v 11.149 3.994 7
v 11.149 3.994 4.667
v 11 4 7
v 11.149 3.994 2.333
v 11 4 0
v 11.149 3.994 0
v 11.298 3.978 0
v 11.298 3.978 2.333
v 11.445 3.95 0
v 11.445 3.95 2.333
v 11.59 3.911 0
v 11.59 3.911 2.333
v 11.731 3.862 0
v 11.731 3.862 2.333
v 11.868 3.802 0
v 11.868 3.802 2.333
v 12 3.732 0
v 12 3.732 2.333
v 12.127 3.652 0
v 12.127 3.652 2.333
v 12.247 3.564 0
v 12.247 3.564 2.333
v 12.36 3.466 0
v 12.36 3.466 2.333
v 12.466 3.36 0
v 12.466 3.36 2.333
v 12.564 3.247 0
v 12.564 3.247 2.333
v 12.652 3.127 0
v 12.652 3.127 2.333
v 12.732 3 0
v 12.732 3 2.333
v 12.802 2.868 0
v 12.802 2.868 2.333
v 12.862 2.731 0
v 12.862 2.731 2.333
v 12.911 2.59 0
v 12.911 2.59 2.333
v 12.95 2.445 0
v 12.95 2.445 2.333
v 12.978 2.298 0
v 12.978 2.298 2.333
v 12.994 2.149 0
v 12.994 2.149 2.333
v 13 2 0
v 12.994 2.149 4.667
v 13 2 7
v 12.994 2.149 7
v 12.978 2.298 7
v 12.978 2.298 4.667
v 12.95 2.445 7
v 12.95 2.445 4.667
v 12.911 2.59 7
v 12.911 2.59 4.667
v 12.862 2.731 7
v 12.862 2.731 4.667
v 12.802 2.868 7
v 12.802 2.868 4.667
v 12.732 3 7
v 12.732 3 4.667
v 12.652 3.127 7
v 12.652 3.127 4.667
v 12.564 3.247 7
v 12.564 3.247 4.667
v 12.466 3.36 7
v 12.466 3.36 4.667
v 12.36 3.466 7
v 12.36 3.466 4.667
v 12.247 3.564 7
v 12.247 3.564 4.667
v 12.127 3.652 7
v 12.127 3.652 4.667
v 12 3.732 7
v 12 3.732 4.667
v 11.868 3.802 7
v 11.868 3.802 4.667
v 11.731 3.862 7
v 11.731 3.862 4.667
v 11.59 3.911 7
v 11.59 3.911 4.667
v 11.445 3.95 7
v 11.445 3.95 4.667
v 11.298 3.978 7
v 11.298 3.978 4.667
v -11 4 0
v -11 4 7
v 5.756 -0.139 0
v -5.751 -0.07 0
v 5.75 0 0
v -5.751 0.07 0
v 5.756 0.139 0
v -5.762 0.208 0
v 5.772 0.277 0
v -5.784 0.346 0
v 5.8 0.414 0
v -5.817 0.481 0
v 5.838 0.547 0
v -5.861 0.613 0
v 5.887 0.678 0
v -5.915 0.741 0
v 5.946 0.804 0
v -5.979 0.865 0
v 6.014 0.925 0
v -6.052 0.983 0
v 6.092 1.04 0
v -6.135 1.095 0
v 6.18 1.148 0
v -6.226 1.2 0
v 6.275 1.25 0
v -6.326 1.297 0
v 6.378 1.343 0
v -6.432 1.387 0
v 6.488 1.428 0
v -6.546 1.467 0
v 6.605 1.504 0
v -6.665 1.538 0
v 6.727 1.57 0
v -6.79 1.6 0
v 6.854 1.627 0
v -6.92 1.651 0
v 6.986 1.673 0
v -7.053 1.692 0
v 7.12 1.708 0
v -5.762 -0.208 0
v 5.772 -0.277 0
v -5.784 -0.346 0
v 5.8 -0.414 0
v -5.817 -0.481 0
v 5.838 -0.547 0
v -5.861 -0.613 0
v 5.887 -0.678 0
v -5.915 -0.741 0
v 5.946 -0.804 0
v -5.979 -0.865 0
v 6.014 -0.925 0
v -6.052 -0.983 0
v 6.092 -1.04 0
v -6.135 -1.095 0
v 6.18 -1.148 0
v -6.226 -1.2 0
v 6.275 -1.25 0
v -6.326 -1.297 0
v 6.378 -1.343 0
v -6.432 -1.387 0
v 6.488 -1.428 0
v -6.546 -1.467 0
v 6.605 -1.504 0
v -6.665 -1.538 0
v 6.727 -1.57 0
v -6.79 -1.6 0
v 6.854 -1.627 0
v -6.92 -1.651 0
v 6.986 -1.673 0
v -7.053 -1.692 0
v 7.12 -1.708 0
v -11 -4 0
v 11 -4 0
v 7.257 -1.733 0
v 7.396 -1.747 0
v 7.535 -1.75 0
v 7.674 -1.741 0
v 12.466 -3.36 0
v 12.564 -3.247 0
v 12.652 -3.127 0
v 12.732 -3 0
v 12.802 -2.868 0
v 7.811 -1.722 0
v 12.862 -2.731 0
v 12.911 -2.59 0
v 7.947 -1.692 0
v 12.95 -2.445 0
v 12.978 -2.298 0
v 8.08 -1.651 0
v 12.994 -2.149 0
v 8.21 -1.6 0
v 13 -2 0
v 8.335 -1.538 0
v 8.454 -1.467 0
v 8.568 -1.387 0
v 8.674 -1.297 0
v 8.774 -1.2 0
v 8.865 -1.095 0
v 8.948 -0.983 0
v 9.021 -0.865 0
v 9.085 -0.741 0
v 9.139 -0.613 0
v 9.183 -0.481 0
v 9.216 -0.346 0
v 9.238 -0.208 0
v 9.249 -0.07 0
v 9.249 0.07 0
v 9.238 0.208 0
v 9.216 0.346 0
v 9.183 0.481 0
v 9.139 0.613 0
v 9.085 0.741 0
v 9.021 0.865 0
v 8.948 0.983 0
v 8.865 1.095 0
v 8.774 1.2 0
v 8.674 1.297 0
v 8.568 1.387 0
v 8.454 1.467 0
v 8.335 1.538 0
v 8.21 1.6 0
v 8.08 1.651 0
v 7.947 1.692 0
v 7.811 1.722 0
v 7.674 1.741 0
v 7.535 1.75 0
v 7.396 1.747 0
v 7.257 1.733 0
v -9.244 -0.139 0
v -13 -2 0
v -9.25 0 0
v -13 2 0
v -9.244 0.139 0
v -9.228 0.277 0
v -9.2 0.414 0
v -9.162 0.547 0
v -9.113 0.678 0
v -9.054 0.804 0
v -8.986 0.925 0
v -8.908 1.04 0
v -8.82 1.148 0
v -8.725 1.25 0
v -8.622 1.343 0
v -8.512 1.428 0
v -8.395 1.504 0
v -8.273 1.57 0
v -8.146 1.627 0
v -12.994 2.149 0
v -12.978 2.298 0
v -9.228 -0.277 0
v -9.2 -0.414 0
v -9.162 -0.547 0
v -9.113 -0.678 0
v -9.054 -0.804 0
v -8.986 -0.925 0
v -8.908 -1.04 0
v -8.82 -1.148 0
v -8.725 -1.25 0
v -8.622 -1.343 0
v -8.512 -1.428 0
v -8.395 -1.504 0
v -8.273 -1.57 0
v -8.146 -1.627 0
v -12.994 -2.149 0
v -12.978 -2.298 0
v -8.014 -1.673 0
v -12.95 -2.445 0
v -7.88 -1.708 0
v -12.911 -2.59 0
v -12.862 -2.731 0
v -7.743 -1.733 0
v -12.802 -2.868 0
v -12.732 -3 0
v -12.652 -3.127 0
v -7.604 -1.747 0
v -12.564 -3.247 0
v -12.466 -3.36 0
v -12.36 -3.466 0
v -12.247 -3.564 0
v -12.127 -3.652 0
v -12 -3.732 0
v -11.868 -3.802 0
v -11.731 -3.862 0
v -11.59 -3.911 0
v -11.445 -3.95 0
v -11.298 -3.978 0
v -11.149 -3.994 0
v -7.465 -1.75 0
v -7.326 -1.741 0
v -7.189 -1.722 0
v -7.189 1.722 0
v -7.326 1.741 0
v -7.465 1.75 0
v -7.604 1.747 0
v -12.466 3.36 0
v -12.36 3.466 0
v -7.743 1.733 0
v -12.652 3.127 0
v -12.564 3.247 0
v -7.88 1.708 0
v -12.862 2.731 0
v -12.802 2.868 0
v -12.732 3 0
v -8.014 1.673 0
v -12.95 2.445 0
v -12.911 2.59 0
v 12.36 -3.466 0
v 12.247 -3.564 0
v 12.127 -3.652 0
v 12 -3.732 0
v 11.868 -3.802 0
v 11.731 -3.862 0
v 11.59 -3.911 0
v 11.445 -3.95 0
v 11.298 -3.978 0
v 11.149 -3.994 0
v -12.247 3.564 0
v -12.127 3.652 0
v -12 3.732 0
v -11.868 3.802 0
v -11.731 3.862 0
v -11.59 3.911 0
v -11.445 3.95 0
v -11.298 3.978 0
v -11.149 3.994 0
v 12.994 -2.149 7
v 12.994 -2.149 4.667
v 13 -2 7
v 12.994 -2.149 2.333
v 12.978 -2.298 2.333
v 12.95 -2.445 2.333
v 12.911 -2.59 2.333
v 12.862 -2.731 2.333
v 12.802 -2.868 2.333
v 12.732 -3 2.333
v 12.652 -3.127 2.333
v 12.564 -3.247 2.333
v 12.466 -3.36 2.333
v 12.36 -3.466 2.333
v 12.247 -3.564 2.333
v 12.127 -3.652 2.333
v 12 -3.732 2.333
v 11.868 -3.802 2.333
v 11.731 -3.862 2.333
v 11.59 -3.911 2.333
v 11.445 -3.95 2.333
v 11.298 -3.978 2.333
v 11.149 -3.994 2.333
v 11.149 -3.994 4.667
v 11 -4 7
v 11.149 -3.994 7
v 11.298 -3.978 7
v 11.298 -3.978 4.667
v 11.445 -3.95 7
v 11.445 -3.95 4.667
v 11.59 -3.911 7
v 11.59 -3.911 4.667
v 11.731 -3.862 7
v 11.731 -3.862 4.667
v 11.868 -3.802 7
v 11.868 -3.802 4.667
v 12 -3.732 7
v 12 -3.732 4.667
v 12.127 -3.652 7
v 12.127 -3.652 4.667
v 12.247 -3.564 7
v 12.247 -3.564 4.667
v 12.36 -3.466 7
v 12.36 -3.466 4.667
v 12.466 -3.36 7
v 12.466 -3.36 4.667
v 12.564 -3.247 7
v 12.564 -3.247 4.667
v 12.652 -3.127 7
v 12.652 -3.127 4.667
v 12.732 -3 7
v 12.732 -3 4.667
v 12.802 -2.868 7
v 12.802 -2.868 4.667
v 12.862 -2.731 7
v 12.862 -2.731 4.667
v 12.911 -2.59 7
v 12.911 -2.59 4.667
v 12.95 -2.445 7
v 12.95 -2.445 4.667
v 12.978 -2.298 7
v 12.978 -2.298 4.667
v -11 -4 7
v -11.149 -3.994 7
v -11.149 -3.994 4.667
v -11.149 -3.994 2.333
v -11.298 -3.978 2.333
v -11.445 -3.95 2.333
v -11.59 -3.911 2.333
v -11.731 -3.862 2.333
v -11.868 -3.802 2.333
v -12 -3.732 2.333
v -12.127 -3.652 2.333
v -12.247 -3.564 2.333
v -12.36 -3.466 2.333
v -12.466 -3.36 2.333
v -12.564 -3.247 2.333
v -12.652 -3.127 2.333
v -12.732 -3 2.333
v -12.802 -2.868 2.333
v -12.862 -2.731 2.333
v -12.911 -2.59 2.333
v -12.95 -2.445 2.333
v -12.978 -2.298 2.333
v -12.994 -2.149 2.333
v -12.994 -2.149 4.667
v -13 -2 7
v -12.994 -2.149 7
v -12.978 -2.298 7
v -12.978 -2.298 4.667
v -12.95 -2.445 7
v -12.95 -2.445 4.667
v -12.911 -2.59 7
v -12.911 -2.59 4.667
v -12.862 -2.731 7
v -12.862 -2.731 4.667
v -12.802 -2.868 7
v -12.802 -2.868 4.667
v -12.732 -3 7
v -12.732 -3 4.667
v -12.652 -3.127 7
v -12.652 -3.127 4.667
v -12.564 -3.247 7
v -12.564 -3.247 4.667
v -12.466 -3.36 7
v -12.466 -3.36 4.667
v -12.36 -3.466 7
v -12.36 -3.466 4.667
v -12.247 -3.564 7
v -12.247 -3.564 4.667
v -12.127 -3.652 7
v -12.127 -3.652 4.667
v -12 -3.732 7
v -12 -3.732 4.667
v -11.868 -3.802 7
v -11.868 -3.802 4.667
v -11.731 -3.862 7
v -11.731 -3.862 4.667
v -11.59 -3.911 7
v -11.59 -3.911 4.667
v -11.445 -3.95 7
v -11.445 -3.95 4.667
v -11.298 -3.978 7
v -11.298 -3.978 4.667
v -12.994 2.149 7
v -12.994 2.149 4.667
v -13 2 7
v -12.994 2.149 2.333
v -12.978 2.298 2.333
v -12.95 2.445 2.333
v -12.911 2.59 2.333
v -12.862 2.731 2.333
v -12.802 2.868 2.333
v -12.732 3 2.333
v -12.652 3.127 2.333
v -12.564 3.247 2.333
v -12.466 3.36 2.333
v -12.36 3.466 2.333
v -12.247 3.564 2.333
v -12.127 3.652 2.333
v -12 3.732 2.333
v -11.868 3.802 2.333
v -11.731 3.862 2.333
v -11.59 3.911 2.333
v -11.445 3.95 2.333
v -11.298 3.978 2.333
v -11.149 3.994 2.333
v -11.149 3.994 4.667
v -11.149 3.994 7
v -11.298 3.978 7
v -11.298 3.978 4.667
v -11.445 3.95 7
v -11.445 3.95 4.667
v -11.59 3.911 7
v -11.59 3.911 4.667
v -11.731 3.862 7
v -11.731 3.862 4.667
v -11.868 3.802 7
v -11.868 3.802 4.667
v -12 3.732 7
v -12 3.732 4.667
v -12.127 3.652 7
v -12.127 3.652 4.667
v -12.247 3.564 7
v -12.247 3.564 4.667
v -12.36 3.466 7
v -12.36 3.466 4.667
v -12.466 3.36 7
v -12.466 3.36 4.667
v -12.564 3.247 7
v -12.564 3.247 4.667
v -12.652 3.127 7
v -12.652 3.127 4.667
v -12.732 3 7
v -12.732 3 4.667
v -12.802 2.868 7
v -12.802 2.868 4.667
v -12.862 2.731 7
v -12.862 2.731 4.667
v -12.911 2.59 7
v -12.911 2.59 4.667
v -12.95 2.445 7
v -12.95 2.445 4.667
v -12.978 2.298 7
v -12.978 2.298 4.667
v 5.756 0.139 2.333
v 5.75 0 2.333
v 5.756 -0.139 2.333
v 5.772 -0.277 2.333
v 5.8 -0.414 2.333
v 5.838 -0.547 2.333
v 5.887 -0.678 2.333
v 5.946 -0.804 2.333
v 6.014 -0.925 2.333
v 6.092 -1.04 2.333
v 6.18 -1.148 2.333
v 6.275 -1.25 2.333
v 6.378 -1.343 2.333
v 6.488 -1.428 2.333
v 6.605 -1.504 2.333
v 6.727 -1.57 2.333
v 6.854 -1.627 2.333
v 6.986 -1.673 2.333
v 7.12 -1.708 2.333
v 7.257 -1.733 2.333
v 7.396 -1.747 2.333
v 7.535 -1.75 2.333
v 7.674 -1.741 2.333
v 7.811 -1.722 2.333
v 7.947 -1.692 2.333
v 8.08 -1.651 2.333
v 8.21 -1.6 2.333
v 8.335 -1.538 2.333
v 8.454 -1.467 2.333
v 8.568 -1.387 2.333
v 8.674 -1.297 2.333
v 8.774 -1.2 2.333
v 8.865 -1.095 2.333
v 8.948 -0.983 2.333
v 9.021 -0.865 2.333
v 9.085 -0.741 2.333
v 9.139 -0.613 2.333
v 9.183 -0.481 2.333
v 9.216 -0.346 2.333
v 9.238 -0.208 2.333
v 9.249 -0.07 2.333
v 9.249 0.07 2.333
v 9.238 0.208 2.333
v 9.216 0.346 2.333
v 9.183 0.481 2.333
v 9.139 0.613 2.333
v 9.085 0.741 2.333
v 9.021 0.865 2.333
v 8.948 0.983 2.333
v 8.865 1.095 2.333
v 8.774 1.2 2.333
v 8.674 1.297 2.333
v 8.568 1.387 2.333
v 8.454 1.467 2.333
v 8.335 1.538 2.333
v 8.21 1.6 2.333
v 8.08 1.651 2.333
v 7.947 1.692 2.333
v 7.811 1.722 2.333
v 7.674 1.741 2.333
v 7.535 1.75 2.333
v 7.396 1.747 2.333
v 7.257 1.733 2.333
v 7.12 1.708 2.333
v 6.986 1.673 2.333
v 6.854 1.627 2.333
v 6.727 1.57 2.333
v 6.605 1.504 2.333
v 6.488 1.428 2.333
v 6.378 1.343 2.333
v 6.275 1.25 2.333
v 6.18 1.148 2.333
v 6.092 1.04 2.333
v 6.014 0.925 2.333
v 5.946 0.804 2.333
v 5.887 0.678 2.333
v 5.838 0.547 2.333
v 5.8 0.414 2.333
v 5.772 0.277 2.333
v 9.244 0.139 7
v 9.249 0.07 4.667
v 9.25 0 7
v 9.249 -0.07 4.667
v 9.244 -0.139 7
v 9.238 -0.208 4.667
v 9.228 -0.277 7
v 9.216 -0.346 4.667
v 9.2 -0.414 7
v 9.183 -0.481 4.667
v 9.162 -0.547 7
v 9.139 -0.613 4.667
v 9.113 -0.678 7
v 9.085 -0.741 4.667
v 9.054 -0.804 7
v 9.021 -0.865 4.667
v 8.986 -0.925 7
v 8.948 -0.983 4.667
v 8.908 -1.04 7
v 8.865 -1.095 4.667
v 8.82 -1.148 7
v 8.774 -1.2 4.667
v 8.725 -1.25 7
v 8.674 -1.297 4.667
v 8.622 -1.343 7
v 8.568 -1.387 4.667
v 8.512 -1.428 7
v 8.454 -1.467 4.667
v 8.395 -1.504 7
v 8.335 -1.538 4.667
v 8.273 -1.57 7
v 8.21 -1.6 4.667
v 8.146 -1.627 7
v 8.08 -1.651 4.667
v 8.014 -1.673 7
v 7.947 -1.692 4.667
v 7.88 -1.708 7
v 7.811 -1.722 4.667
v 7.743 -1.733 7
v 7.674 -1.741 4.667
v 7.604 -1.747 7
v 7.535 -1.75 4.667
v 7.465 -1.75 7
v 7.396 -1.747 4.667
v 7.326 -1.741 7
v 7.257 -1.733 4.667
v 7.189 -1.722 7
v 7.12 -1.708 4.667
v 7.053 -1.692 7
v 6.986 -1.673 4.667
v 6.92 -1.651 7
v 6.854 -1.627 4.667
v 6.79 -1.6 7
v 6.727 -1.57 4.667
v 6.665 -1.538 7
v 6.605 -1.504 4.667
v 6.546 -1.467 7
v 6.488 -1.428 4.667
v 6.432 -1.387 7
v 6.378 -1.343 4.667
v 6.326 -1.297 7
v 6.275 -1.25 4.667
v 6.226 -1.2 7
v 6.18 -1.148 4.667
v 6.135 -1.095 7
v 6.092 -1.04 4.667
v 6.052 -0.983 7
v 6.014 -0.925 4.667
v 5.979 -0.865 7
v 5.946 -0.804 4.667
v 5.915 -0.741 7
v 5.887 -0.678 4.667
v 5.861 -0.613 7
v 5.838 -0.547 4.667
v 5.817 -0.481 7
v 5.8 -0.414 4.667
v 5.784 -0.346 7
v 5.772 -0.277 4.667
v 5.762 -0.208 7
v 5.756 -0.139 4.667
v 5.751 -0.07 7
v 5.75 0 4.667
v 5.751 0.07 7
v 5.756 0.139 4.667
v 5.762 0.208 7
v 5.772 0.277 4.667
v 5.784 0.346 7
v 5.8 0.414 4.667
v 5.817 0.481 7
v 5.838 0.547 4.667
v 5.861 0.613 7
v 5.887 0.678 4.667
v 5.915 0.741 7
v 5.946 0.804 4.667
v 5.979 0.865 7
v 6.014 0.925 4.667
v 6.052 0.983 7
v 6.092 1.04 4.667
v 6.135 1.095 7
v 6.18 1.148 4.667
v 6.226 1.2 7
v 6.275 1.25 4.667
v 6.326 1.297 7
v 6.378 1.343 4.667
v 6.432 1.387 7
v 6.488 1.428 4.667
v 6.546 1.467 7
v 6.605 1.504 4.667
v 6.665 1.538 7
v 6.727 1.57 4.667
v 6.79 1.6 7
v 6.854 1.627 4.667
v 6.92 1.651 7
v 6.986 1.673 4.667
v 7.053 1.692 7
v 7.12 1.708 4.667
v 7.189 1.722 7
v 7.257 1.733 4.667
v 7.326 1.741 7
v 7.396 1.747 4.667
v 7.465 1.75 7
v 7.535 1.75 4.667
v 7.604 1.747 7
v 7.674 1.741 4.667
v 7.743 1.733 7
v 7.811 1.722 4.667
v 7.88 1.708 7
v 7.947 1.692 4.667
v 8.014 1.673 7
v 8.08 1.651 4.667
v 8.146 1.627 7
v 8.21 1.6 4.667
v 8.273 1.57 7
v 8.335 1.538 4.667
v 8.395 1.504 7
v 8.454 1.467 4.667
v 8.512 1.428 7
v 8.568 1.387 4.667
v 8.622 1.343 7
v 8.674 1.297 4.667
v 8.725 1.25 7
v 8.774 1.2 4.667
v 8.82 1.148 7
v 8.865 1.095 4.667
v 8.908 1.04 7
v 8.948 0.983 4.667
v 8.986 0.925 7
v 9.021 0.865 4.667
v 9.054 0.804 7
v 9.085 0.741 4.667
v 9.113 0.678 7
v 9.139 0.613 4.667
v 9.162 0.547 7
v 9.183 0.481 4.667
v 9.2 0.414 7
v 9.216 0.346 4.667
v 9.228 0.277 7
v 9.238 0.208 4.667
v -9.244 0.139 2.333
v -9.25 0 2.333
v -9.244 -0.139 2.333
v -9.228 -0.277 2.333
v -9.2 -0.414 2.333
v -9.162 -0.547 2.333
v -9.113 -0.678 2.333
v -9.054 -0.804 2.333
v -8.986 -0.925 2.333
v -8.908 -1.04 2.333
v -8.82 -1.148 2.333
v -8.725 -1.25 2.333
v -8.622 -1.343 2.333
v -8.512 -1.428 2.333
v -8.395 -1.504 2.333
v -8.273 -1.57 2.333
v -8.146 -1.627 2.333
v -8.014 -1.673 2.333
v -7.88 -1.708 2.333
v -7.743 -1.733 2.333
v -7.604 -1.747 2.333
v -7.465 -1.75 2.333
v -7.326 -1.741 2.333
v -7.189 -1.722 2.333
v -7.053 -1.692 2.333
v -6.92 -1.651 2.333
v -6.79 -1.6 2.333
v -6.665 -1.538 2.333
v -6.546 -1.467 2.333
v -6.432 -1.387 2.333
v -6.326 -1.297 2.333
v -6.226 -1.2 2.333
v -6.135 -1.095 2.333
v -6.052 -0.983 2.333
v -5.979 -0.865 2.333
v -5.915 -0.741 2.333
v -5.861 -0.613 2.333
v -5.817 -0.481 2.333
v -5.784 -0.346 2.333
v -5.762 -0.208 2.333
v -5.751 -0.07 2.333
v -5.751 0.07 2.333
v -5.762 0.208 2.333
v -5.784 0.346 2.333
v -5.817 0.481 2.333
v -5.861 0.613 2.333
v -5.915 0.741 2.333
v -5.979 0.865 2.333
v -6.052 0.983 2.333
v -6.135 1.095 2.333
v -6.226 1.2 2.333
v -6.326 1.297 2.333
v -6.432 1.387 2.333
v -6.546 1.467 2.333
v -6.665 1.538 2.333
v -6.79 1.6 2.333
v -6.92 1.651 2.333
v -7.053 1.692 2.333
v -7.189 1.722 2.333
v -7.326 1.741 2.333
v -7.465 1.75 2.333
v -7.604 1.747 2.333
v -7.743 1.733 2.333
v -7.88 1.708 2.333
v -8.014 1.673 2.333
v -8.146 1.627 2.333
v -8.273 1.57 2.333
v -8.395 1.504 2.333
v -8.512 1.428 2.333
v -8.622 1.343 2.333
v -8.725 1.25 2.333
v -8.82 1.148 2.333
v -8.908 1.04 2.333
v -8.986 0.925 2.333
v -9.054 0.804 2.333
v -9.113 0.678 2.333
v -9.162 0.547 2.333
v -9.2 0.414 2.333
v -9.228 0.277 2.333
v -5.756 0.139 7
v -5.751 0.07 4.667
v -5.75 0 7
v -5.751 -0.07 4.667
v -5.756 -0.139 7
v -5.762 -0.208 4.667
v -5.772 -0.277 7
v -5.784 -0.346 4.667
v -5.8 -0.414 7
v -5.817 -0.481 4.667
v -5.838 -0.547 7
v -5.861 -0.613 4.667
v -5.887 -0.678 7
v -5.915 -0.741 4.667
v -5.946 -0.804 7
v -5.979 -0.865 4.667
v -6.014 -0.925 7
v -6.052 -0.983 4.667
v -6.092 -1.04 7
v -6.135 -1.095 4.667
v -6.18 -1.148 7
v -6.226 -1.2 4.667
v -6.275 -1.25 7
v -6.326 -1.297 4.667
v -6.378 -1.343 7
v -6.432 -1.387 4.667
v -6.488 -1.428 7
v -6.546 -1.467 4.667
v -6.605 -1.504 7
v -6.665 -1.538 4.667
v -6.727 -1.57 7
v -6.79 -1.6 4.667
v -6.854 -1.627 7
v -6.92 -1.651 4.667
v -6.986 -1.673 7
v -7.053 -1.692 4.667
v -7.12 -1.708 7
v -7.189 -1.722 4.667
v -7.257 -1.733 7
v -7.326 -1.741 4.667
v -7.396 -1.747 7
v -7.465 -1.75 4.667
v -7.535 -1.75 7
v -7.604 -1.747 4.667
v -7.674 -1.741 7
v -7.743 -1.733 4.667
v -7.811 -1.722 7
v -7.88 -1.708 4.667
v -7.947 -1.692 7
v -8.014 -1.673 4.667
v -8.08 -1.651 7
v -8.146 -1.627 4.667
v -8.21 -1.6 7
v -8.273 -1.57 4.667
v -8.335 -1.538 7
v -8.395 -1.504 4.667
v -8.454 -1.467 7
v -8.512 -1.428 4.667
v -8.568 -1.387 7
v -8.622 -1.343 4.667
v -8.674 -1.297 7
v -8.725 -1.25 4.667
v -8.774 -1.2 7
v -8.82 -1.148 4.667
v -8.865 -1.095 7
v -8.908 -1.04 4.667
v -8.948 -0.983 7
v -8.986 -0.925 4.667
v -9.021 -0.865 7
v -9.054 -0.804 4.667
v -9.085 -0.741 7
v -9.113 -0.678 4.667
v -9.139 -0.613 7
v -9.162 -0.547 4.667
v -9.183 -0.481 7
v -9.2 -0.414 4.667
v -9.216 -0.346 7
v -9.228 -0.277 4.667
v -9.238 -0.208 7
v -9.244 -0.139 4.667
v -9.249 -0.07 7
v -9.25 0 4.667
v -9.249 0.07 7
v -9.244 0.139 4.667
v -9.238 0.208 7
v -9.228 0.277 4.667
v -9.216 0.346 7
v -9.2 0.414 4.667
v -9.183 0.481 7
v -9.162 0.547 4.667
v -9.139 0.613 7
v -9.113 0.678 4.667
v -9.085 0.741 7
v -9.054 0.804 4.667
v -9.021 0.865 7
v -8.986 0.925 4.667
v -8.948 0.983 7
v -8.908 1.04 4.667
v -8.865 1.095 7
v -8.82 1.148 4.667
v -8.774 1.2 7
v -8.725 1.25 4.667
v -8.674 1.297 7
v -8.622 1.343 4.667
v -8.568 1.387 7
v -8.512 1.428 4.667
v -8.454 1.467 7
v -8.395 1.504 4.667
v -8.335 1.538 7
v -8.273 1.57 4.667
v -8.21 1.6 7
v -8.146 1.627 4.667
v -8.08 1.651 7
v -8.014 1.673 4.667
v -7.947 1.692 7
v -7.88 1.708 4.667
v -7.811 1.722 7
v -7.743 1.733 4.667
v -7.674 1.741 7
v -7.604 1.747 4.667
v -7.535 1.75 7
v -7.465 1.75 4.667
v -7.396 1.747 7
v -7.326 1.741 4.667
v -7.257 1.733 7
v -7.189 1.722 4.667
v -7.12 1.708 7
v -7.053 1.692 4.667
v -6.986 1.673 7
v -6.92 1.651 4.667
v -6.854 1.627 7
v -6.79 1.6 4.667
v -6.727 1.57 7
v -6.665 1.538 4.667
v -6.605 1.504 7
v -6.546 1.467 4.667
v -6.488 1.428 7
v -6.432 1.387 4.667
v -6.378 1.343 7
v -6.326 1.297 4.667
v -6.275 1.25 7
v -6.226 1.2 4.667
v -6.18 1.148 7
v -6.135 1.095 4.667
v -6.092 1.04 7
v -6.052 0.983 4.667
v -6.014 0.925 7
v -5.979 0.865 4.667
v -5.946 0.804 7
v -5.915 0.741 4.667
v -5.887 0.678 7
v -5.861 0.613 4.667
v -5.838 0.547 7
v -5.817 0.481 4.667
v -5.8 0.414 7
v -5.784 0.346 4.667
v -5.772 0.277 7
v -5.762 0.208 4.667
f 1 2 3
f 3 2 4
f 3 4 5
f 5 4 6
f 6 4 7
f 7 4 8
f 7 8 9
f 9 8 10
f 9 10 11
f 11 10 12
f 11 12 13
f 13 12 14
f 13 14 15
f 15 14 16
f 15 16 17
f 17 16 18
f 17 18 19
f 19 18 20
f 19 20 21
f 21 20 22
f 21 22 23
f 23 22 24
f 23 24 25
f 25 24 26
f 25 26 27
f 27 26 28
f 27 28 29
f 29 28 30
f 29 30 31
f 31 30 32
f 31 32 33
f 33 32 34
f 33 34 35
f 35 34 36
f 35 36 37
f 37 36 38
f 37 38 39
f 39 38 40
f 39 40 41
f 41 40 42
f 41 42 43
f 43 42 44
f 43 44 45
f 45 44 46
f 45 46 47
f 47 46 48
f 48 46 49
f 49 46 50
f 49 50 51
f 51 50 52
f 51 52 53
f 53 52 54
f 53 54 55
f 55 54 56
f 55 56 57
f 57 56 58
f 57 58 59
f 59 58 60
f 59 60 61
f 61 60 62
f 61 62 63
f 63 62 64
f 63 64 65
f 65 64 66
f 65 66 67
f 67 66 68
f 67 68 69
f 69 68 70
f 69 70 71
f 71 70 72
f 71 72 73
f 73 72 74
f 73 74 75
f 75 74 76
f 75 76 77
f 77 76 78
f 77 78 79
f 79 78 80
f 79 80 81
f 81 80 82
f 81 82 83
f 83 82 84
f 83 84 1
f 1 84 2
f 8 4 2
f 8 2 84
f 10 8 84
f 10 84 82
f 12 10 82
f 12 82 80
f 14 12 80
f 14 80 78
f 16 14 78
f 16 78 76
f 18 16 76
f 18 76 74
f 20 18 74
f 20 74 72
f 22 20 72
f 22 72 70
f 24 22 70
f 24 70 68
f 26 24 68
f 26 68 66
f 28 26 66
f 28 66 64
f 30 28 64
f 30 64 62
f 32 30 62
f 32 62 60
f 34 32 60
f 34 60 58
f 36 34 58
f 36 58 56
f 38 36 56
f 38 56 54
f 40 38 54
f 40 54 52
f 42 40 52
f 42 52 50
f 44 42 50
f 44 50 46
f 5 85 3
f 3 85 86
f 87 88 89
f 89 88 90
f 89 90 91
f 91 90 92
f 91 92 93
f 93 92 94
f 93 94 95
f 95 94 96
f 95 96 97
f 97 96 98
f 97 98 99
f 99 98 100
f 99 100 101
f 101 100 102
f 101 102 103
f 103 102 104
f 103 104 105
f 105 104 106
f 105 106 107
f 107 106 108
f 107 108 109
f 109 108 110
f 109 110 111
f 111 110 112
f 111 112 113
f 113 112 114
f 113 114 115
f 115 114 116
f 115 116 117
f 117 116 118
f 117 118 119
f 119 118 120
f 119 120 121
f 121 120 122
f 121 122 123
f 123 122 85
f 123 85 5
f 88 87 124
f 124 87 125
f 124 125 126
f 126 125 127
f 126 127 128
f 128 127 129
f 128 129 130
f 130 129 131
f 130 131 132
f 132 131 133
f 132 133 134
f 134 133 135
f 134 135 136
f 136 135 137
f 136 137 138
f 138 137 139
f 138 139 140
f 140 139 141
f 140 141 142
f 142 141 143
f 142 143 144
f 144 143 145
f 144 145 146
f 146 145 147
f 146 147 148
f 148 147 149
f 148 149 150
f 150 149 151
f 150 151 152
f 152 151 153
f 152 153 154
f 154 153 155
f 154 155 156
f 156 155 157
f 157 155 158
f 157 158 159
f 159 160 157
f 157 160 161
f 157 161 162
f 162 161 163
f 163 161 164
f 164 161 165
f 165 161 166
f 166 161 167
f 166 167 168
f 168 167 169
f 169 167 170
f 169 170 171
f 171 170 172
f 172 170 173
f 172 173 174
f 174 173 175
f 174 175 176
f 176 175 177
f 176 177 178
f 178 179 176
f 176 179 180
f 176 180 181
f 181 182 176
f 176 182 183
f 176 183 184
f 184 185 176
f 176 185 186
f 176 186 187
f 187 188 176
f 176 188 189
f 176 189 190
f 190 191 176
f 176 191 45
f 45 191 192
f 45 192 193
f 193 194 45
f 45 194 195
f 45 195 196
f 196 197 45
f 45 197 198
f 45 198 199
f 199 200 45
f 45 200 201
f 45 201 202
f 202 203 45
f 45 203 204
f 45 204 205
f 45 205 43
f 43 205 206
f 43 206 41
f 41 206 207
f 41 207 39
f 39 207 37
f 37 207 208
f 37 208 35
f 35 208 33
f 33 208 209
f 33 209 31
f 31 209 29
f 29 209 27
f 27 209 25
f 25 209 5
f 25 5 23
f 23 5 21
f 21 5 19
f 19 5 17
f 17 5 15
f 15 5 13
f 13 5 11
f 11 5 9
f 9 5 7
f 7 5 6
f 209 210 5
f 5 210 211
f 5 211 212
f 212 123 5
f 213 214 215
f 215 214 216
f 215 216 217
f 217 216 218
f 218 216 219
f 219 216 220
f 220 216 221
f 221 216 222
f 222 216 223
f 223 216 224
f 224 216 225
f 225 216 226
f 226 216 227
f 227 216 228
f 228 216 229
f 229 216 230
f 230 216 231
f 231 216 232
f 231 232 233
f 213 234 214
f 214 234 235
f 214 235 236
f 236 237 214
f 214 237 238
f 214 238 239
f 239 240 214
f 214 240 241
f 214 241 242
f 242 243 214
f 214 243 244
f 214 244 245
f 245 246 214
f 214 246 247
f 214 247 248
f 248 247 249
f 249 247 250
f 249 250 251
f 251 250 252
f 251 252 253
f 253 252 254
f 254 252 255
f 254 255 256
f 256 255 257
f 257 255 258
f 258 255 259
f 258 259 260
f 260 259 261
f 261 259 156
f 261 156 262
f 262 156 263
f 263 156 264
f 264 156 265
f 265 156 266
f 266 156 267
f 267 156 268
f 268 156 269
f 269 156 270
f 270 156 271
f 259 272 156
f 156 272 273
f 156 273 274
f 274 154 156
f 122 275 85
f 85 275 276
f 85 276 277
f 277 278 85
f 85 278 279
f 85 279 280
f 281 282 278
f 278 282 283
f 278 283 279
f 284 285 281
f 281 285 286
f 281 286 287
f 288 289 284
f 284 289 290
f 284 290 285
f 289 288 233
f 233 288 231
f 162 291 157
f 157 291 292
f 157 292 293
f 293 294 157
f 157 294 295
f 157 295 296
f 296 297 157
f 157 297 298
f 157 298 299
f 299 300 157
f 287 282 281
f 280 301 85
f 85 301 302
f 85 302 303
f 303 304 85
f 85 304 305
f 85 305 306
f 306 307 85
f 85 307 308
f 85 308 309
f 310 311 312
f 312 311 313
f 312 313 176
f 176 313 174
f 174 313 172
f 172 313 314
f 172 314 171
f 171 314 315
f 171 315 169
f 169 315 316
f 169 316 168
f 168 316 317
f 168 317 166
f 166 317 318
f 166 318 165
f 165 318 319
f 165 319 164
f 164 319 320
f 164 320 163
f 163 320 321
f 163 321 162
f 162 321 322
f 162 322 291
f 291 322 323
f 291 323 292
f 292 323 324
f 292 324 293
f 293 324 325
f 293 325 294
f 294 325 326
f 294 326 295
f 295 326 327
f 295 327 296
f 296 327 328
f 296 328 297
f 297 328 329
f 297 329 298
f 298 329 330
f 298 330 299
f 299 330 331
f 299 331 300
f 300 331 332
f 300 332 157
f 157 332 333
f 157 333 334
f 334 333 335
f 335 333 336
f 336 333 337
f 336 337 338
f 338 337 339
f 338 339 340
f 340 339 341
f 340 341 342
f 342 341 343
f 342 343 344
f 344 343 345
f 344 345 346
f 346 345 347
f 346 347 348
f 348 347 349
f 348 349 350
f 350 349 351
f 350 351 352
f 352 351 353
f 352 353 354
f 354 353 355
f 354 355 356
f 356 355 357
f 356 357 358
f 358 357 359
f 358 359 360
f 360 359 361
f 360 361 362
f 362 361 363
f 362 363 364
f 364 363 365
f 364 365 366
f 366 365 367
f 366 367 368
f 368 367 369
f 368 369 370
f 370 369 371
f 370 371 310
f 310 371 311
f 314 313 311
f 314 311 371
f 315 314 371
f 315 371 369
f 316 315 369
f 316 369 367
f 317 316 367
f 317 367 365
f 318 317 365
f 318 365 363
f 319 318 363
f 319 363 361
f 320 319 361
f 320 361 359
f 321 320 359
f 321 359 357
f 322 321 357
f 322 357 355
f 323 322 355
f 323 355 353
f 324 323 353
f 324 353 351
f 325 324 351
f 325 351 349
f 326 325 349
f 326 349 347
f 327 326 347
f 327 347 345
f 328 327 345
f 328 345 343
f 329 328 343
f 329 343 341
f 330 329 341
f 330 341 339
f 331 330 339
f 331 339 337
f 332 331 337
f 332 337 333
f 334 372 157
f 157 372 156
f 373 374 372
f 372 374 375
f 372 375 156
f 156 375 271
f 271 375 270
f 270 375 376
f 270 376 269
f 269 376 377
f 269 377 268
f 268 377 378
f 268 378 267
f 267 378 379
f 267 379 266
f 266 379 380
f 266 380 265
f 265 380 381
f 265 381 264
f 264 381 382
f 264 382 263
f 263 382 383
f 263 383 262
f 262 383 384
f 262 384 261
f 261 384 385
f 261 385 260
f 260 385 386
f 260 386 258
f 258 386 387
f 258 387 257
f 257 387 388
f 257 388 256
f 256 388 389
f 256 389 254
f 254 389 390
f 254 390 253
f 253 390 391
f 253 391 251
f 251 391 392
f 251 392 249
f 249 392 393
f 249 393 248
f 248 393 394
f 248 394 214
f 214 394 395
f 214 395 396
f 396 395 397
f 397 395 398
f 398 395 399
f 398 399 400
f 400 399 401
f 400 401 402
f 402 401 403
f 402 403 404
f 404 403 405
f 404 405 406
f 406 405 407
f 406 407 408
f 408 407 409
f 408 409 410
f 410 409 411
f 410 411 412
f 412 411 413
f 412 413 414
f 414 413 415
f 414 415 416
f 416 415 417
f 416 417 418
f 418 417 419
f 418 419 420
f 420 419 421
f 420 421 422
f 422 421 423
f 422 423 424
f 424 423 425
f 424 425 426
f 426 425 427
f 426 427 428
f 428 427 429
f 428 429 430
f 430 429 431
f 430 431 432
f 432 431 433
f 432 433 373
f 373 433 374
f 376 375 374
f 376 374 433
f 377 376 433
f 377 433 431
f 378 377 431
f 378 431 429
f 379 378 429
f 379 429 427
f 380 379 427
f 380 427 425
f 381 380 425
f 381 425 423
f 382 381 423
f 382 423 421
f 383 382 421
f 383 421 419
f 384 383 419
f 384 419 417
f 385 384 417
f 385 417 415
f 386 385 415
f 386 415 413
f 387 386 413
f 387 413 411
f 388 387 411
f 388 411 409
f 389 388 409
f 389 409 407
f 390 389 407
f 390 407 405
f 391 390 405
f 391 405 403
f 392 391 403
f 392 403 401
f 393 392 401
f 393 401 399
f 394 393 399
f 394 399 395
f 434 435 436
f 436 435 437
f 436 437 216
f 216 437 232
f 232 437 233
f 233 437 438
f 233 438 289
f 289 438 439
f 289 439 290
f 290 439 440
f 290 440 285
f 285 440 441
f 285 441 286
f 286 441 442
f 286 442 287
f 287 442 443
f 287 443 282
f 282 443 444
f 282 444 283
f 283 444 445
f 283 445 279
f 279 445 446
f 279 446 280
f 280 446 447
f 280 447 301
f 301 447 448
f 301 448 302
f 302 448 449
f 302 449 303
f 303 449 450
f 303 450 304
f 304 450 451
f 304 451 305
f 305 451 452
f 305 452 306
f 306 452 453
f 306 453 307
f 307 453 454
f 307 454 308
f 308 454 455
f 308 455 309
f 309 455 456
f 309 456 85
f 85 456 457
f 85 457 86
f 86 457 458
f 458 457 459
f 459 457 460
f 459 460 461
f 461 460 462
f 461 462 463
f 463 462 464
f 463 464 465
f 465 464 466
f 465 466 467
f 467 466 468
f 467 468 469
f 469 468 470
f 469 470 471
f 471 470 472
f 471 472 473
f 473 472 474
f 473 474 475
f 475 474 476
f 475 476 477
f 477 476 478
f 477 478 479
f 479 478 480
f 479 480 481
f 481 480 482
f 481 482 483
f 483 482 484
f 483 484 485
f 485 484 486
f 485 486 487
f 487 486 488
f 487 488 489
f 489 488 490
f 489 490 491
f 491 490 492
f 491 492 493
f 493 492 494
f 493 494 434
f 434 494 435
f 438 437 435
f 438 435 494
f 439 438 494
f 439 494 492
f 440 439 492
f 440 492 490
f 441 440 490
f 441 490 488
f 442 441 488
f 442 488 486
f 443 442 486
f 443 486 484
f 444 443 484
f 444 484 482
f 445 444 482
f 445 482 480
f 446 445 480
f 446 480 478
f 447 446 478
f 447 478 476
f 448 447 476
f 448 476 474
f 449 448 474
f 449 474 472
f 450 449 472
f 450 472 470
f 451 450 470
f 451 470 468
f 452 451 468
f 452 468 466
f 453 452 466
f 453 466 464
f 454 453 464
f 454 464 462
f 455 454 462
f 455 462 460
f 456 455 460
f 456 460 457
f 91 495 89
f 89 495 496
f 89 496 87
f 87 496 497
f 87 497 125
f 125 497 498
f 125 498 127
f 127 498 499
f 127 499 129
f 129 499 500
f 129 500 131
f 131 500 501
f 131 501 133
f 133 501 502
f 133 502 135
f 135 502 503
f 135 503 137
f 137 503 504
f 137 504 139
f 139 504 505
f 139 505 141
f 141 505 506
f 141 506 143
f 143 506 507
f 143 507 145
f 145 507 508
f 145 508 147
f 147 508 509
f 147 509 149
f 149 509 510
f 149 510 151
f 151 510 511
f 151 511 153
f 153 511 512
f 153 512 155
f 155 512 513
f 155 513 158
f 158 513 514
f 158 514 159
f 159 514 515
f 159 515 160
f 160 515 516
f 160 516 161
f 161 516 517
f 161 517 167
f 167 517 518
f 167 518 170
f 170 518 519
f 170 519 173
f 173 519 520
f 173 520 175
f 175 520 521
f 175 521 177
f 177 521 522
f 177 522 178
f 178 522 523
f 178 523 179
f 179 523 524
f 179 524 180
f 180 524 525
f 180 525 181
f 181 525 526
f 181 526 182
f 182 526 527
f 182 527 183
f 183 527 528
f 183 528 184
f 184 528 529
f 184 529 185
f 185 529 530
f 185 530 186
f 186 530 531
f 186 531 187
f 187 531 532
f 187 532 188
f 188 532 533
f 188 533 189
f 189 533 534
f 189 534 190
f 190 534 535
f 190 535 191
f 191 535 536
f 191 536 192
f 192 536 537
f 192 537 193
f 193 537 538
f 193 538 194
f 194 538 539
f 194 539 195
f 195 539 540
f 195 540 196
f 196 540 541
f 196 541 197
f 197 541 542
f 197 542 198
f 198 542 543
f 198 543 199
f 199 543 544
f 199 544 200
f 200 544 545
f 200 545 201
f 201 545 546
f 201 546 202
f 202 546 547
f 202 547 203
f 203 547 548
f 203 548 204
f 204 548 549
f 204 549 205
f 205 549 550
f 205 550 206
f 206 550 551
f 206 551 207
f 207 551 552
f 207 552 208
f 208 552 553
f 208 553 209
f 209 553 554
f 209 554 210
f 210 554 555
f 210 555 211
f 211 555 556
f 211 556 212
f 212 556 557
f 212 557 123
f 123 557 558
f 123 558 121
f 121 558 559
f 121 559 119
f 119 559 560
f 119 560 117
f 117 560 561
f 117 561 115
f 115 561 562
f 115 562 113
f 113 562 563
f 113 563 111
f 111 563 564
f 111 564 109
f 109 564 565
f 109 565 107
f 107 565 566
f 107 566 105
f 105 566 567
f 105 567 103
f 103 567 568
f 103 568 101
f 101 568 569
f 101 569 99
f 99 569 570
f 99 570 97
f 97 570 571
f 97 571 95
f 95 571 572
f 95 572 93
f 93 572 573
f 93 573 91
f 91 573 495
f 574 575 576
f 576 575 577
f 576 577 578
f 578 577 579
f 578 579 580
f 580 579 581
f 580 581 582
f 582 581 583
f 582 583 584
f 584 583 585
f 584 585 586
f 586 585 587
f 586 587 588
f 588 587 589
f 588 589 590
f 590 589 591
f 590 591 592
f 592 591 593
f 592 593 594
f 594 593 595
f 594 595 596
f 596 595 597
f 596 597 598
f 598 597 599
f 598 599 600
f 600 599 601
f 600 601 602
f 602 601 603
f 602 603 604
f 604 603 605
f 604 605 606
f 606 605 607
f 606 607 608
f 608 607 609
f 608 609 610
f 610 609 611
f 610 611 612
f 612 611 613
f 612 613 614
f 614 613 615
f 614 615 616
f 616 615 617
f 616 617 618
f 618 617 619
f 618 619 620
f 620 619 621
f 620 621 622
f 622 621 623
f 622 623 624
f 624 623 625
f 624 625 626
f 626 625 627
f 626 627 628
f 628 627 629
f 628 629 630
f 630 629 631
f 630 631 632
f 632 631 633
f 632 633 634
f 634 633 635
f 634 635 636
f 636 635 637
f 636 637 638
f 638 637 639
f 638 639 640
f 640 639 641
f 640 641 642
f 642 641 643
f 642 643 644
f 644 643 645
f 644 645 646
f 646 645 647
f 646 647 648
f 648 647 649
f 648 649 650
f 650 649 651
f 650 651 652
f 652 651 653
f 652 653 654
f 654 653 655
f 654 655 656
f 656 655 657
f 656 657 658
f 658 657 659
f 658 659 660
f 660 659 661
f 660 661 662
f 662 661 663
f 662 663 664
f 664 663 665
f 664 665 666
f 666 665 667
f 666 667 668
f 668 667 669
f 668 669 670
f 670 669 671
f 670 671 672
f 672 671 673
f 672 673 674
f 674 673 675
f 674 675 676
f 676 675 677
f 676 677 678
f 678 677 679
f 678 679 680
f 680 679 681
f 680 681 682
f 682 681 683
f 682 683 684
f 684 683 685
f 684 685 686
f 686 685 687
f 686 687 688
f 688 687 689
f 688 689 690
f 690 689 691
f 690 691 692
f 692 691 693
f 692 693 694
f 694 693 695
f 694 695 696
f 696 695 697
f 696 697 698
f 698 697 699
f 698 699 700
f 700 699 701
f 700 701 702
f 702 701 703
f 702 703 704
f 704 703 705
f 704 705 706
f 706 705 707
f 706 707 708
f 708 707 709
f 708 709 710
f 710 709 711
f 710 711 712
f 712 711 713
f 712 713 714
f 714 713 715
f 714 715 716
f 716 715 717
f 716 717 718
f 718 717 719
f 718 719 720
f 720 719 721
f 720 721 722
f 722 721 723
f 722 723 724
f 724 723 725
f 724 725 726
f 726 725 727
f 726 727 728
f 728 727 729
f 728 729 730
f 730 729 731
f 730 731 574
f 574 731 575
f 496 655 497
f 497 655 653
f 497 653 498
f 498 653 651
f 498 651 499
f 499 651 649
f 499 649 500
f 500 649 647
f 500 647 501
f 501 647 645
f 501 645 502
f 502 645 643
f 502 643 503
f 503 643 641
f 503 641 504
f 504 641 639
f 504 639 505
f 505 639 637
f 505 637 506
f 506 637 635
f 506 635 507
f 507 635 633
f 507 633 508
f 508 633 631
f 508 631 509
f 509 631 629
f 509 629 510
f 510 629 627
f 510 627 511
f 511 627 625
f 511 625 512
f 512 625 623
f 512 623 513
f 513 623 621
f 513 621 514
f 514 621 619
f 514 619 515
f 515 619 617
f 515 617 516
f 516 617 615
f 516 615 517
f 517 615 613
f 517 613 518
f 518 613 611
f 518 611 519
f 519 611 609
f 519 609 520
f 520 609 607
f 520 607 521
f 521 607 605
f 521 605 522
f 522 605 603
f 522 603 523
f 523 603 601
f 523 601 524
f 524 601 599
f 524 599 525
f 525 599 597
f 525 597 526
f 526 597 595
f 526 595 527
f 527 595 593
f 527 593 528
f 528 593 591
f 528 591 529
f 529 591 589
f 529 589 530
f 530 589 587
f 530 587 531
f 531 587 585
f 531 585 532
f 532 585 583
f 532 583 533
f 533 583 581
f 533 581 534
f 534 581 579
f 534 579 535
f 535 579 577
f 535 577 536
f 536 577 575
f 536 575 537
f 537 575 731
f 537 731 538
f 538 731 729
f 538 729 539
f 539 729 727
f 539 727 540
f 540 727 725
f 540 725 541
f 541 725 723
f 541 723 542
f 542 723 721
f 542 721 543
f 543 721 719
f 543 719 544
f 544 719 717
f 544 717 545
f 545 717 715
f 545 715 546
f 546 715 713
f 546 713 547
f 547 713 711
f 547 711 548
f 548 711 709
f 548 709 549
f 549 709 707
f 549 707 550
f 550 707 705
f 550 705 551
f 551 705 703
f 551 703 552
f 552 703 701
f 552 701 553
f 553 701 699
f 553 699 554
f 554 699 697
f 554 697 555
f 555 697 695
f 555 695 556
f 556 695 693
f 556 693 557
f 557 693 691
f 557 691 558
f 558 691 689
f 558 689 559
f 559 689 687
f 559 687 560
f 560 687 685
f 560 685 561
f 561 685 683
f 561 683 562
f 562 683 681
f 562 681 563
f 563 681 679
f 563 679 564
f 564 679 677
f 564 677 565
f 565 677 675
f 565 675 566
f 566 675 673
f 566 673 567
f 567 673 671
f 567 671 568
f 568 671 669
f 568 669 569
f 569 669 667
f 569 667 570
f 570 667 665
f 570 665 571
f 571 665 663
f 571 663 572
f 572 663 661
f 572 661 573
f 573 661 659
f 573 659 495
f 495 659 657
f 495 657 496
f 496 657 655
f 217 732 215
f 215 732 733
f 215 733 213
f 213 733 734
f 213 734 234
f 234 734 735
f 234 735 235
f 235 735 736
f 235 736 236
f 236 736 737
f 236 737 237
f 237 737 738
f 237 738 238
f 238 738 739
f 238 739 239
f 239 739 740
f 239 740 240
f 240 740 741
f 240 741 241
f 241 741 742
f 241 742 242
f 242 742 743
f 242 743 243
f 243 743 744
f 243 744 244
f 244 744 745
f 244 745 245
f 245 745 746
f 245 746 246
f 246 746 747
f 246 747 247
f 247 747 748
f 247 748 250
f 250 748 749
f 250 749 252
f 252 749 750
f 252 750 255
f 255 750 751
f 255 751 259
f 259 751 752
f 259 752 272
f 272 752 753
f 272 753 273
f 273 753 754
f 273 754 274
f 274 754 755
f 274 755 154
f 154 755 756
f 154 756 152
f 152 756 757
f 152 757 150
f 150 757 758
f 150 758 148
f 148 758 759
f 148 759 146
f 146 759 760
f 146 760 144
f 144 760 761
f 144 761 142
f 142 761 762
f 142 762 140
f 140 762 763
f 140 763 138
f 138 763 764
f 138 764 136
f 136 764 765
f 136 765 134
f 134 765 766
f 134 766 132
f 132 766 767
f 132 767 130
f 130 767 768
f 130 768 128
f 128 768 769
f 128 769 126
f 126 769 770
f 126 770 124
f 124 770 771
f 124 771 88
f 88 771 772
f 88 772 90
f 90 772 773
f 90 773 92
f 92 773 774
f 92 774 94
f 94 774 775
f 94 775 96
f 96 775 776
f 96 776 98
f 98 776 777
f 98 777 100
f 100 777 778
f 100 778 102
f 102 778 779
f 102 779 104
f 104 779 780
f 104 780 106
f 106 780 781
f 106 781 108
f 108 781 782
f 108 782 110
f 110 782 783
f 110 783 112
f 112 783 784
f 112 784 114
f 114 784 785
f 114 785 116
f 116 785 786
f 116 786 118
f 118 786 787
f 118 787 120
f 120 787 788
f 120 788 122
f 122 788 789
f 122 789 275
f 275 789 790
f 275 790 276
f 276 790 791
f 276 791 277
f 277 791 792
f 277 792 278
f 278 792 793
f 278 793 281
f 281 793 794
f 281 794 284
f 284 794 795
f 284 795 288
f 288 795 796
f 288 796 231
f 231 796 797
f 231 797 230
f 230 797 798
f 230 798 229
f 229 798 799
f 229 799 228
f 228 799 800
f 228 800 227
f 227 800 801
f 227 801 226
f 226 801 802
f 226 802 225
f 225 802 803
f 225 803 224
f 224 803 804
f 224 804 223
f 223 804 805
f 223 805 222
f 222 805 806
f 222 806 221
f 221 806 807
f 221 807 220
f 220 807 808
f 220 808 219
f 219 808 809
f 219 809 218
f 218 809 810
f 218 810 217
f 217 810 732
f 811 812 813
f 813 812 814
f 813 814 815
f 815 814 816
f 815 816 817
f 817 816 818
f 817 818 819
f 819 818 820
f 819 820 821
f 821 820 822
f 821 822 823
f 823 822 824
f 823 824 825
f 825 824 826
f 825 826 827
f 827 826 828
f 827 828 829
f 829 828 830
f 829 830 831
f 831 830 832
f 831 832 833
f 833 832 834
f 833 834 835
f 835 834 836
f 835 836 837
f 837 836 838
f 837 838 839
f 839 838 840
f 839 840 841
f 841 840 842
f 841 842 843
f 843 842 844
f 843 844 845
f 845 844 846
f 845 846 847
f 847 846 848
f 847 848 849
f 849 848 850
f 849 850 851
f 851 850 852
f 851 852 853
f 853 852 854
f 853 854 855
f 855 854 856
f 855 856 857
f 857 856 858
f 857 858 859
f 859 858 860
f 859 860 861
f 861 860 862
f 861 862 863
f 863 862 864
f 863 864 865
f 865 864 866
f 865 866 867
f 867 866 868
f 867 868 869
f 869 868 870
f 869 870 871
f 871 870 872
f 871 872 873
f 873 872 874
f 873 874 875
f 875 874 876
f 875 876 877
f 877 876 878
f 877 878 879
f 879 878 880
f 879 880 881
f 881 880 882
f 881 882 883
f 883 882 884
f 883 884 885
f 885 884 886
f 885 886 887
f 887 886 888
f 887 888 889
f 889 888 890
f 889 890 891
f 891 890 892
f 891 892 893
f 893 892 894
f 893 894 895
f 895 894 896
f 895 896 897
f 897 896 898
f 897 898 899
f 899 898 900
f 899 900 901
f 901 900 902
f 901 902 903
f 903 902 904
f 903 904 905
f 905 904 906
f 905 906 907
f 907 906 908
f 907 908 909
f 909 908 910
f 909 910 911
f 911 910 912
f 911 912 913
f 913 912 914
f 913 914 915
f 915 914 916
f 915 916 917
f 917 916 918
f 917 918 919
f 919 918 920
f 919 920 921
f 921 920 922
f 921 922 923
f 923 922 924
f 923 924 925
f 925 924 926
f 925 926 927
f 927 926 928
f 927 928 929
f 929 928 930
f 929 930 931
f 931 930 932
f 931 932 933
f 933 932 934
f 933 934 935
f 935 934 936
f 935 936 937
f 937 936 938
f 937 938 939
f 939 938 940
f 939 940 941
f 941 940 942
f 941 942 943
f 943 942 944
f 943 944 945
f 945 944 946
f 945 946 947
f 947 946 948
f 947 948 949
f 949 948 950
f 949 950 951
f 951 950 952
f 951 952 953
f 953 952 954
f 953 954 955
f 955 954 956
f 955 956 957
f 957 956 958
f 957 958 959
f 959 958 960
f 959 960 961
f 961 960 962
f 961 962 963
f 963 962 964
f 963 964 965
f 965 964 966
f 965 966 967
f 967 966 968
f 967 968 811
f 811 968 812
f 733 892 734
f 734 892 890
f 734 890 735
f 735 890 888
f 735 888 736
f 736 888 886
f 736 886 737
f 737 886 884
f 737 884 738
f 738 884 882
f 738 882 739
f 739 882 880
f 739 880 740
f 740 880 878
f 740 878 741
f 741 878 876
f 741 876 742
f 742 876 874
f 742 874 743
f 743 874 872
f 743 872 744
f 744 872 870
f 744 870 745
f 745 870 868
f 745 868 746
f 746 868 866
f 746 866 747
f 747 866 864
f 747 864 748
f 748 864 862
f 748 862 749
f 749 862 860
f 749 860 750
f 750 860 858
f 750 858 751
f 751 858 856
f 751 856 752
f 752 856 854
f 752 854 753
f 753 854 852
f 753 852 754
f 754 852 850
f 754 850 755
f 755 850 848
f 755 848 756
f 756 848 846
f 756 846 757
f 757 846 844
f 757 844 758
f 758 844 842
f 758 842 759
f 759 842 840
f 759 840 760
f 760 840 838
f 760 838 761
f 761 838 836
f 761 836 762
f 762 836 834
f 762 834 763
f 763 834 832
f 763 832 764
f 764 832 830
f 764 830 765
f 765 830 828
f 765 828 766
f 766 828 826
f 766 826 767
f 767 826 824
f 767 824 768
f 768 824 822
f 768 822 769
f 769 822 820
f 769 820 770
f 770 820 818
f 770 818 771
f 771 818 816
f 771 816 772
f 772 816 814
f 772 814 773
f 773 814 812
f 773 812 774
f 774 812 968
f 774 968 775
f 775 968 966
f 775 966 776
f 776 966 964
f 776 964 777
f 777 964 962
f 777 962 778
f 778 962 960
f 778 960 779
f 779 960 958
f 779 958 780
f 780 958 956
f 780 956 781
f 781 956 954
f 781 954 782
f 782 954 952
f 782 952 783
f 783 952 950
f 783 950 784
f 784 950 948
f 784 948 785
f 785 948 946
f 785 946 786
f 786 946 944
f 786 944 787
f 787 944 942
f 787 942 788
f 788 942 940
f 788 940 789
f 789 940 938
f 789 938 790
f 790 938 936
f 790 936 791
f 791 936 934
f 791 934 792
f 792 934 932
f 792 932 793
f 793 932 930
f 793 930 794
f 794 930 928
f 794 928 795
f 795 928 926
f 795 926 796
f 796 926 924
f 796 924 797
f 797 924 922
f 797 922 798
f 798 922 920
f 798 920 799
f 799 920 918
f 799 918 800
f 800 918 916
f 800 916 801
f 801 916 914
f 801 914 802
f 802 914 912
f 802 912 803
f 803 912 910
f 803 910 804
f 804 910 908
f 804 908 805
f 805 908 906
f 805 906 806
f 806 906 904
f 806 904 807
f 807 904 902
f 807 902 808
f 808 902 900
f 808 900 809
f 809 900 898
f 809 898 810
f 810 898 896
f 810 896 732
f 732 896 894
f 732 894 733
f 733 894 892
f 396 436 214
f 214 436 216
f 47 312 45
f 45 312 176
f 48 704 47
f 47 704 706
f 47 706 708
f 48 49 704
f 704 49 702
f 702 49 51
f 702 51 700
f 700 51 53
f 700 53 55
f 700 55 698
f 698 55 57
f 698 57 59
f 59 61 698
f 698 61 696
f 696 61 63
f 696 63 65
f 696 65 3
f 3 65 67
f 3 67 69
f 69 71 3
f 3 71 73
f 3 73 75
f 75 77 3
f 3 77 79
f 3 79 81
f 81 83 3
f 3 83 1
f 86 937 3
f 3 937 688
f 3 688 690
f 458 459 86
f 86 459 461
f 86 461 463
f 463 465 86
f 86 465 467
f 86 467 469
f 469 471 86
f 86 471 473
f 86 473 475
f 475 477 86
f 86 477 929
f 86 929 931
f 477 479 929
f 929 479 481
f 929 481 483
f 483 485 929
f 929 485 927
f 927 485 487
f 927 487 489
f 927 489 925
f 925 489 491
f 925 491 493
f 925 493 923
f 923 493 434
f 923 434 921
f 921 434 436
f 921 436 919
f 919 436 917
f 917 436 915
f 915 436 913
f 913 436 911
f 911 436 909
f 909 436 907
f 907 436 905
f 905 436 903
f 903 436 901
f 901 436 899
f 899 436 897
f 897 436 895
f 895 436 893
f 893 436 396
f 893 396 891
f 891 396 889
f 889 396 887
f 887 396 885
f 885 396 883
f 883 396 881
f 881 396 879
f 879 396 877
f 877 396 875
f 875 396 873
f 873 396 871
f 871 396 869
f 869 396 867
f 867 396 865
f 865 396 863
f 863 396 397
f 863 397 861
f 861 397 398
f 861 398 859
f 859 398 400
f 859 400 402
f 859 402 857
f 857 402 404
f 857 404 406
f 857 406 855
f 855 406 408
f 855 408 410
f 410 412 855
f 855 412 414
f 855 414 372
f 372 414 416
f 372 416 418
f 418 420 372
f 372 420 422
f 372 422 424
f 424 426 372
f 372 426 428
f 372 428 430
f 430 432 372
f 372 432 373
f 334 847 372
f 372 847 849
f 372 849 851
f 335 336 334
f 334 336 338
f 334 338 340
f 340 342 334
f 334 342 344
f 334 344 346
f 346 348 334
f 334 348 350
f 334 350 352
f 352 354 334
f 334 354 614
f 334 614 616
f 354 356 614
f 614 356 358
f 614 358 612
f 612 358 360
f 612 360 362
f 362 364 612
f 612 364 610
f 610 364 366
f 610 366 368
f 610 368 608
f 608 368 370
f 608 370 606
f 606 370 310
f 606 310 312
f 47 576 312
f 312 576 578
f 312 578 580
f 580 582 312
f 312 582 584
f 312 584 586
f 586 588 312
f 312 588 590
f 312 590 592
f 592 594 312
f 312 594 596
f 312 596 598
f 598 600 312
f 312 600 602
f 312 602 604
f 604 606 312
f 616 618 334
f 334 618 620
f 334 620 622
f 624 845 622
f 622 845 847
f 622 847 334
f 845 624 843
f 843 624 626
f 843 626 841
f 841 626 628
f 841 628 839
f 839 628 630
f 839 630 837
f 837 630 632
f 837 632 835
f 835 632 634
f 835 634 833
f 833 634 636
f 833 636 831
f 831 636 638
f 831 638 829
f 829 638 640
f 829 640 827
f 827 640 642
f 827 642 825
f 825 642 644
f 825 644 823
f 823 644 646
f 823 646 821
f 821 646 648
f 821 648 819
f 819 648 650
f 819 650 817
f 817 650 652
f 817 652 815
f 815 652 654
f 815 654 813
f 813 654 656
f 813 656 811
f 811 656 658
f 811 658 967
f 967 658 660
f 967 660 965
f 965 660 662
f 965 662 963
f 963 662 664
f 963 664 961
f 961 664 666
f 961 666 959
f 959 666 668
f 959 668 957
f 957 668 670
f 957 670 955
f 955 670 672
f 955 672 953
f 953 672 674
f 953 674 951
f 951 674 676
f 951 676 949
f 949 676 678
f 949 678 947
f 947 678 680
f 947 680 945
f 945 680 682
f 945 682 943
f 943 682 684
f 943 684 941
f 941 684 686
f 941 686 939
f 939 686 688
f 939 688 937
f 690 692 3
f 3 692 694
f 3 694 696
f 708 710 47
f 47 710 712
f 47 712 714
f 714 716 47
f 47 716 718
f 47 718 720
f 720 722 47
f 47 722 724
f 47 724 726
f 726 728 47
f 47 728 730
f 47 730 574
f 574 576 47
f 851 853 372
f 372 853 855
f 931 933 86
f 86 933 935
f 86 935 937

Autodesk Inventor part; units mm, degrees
ref_plane "YZ Plane" through (0, 0, 0) normal (1, 0, 0) x (0, 1, 0)
ref_plane "XZ Plane" through (0, 0, 0) normal (0, 1, 0) x (-1, 0, 0)
ref_plane "XY Plane" through (0, 0, 0) normal (0, 0, 1) x (1, 0, 0)
sketch "Sketch1" plane through (0, 0, 0) normal (0, 0, 1) x (1, 0, 0)
  line L0 (-13, -4) -> (13, -4)
  line L1 (13, -4) -> (13, 4)
  line L2 (13, 4) -> (-13, 4)
  line L3 (-13, 4) -> (-13, -4)
  line L4 (-13, -4) -> (13, 4) construction
  line L5 (13, -4) -> (-13, 4) construction
  point P0 (0, 0)
  dimension "d0" = 26
  dimension "d1" = 8
extrude "Extrusion1" add sketch "Sketch1" along normal blind 7
sketch "Sketch2" plane through (0, 0, 7) normal (0, 0, 1) x (1, 0, 0)
  line L0 (0, 5.6) -> (0, -5.6) projected
  circle A0 centre (-7.5, 0) radius 1.75
  circle A1 centre (7.5, 0) radius 1.75
  line L1 (-18.2, 0) -> (18.2, 0) projected
  point P0 (0, 0)
  dimension "d4" = 3.5
  dimension "d5" = 15
extrude "Extrusion2" cut sketch "Sketch2" against normal through all
fillet "Fillet1" radius 2 4 edges at (-13, 4, 3.5) (-13, -4, 3.5) (13, -4, 3.5) (13, 4, 3.5)
properties part number "30_Lasercable_holder_B"
